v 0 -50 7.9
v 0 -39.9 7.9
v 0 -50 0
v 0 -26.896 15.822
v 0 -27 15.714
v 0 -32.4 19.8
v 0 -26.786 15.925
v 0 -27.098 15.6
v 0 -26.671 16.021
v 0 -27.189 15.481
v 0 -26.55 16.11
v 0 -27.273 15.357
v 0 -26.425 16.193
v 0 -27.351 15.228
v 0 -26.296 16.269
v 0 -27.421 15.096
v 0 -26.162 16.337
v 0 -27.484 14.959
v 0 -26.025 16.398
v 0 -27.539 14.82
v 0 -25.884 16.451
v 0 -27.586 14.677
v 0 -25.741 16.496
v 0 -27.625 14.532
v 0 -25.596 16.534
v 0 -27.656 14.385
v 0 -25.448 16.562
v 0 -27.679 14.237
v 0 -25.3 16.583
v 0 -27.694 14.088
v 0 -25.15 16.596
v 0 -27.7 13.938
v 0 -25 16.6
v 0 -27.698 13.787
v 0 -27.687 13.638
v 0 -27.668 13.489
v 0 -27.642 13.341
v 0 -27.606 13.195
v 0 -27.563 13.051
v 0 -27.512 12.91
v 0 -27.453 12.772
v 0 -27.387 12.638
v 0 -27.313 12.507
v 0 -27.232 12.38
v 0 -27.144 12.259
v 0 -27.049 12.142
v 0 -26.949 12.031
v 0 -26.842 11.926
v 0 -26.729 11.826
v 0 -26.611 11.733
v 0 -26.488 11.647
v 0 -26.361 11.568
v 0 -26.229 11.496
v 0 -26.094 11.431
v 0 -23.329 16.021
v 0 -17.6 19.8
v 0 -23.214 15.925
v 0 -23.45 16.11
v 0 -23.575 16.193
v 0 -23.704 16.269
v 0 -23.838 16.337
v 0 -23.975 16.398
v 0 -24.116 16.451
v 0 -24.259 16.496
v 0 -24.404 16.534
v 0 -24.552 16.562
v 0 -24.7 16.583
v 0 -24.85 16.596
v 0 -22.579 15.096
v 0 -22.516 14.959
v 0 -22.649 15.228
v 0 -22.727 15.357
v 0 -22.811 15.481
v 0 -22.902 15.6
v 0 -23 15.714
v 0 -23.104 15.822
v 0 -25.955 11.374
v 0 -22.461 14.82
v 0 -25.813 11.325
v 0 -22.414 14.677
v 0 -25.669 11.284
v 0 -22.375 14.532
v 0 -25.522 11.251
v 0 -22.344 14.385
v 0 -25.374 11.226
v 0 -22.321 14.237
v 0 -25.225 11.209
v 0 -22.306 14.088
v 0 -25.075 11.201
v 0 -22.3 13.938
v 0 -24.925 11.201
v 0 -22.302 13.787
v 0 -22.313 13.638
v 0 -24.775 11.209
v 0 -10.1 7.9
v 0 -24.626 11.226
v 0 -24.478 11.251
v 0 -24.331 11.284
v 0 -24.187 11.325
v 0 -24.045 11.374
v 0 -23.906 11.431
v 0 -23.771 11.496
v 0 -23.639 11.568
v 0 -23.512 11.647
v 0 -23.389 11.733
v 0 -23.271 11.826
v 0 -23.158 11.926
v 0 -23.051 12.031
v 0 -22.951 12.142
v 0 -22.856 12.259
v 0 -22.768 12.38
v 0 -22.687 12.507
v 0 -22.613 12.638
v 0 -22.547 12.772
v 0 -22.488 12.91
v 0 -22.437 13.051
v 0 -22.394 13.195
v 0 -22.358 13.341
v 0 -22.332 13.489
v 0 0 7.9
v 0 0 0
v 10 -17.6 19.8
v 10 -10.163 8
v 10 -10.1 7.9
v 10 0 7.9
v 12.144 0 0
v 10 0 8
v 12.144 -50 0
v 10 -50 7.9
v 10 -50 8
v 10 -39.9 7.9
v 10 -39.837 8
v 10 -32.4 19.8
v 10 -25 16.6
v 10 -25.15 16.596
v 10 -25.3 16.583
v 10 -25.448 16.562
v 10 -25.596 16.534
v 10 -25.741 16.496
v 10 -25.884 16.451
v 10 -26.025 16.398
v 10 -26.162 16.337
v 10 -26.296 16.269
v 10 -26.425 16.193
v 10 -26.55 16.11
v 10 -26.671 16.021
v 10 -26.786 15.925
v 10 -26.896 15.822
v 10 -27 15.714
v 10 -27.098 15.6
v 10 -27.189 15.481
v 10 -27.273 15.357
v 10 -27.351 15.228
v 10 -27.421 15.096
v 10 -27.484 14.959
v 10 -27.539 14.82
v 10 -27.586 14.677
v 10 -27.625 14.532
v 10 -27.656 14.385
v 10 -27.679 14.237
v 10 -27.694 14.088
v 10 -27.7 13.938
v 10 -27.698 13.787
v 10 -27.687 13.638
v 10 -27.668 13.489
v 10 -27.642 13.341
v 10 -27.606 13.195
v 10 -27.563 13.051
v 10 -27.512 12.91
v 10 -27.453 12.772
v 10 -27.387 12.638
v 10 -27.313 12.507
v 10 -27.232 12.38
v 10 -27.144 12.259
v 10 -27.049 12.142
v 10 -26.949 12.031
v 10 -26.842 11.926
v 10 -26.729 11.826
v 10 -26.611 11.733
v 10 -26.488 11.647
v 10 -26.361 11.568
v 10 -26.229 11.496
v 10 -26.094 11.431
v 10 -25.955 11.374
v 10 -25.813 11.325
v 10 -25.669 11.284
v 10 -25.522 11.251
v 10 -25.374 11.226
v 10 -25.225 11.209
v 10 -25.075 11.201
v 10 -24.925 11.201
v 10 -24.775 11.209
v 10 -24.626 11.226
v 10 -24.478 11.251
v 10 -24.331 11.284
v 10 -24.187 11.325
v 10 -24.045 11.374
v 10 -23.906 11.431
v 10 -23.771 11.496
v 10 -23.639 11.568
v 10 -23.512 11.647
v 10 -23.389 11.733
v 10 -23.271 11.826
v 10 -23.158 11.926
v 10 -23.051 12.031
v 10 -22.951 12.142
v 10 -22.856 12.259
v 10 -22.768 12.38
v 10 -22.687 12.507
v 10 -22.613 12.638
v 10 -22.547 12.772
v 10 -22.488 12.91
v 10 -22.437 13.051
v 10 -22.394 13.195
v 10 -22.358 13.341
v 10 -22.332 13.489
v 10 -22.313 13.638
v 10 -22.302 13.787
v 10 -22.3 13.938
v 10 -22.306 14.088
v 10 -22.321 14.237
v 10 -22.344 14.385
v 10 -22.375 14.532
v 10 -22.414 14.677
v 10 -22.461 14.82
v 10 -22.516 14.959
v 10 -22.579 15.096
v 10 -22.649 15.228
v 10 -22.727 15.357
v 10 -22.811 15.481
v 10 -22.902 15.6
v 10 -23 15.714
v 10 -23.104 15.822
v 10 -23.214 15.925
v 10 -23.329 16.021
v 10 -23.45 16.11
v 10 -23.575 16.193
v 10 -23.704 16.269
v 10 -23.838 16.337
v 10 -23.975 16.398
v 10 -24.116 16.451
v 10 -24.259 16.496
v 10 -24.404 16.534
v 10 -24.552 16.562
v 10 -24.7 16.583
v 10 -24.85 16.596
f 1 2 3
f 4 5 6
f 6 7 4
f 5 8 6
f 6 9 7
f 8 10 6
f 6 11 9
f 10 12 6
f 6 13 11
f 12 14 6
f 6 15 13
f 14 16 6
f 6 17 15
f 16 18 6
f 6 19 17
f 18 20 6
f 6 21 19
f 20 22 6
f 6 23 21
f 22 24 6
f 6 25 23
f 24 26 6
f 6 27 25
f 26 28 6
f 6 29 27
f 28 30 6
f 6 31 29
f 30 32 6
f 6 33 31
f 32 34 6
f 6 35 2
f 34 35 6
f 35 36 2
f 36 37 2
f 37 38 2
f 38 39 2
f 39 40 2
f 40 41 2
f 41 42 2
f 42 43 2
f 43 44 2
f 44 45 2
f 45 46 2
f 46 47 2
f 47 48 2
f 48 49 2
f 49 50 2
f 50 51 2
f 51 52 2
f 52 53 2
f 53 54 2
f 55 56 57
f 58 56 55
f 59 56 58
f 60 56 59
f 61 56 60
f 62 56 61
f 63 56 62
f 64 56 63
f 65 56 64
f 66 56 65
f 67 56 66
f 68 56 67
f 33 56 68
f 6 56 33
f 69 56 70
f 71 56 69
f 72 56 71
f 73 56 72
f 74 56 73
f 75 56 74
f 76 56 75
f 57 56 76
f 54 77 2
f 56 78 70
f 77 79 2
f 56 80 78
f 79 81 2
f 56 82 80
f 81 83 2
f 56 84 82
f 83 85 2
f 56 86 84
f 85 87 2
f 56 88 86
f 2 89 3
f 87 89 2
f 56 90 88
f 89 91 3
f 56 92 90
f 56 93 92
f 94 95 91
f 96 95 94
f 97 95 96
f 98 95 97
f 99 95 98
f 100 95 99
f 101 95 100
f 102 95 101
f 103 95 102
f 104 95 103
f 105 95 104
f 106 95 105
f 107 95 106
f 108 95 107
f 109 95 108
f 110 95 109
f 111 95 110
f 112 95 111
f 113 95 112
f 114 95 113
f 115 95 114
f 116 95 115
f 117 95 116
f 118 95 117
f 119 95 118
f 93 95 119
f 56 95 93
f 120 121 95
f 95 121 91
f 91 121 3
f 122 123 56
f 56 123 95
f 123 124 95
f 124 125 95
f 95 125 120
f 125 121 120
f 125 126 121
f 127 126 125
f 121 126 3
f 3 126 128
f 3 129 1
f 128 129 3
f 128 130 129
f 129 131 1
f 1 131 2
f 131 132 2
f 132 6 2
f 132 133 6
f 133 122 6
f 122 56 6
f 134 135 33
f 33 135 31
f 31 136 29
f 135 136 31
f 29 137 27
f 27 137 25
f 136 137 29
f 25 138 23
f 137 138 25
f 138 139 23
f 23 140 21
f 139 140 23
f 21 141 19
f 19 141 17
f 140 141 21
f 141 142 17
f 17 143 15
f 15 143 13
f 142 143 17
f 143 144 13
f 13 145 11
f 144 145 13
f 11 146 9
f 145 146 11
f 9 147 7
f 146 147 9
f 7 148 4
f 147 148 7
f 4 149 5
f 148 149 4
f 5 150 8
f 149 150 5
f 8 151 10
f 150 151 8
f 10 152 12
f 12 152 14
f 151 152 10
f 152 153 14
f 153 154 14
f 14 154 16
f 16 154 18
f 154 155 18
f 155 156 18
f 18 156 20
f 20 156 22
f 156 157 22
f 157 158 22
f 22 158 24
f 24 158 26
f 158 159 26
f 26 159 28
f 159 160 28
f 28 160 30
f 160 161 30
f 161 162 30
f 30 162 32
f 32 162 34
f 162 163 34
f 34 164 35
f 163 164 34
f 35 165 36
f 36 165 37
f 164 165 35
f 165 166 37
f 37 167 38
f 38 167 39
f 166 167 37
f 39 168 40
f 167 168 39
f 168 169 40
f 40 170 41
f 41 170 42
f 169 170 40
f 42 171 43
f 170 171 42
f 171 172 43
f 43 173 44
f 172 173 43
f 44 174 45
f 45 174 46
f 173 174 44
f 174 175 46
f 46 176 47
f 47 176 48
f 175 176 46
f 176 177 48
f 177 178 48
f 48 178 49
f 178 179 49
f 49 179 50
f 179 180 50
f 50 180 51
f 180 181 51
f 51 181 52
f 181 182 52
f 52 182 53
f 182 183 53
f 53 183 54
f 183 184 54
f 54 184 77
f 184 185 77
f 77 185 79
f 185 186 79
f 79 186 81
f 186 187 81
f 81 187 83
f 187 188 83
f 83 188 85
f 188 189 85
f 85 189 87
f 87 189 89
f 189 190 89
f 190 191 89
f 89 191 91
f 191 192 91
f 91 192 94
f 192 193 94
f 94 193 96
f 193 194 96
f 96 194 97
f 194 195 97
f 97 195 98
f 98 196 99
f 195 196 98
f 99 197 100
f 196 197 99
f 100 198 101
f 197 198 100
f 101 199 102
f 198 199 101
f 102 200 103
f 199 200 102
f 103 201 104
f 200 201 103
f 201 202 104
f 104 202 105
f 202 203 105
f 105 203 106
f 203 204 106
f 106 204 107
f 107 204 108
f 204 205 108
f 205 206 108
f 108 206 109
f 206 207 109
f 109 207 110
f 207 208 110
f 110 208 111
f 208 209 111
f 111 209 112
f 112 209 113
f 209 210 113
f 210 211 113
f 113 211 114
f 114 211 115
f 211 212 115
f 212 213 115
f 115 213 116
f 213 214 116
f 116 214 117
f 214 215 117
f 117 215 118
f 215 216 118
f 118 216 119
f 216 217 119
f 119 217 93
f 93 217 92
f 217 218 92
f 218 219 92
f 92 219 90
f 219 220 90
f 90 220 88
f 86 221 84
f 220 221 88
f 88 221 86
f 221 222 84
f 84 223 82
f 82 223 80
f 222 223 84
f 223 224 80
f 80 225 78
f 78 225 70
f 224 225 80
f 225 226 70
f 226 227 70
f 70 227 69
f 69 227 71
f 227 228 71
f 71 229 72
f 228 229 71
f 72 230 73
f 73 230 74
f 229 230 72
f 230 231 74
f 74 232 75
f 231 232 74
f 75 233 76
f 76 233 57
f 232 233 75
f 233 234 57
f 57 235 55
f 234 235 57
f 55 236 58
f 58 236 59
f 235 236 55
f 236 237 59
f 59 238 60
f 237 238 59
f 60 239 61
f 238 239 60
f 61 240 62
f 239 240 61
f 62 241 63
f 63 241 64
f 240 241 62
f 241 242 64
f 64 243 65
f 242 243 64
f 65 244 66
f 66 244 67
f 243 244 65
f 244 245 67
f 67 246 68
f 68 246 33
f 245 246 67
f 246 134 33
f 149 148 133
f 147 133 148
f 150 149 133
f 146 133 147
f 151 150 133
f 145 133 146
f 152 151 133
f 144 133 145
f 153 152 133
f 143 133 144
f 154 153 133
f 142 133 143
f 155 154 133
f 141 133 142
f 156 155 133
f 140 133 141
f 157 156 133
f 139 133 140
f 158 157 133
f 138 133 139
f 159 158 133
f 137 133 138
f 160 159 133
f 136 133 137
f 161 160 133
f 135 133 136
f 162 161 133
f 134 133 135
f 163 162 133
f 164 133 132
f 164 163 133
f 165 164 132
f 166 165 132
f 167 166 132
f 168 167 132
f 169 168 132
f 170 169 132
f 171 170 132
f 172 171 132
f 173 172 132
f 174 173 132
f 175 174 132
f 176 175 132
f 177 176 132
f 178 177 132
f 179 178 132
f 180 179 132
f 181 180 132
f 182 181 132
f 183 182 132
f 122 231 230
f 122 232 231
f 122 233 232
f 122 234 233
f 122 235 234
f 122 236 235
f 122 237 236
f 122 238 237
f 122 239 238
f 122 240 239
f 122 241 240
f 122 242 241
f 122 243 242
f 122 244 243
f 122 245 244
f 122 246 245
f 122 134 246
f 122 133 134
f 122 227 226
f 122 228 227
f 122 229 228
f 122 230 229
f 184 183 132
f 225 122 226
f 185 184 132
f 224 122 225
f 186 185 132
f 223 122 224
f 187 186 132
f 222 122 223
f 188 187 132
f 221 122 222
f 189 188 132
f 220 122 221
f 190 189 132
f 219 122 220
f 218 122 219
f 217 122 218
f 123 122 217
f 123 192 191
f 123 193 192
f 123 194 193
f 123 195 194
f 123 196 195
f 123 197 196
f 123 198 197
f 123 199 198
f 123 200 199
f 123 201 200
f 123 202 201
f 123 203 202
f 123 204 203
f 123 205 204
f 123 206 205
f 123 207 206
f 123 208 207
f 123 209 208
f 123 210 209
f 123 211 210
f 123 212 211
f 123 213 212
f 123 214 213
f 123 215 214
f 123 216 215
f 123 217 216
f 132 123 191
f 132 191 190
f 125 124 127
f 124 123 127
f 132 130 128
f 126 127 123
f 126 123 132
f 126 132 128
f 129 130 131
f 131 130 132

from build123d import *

# Parameters (mm, degrees)
SKETCH_W        = 14
SKETCH_H        = 19.8
PAD_DEPTH       = 50
POCKET_DEPTH    = 50.001
SKETCH002_R     = 2.7
POCKET001_DEPTH = 10.001
POCKET002_DEPTH = 10


with BuildPart() as part:
    # Sketch → Pad (new body)
    with BuildSketch(Plane.XZ):
        with Locations((7, 9.9)):
            Rectangle(SKETCH_W, SKETCH_H)
    extrude(amount=PAD_DEPTH)

    # Sketch001 (on Face5 of Pad) → Pocket (cut, through all)
    with BuildSketch(Plane(origin=(0, 0, 0), x_dir=(1, 0, 0), z_dir=(0, 1, 0))):
        Polygon((10, -19.8), (10, -8), (12.143594, 0), (14, 0), (14, -19.8), align=None)
    extrude(amount=-POCKET_DEPTH, mode=Mode.SUBTRACT)

    # Sketch002 (on Face6 of Pocket) → Pocket001 (cut, through all)
    with BuildSketch(Plane(origin=(10, 0, 0), x_dir=(0, 0, 1), z_dir=(1, 0, 0))):
        with Locations((13.9, 25)):
            Circle(SKETCH002_R)
    extrude(amount=-POCKET001_DEPTH, mode=Mode.SUBTRACT)

    # Sketch003 (on Face7 of Pocket001) → Pocket002 (cut)
    with BuildSketch(Plane(origin=(10, 0, 0), x_dir=(0, 0, 1), z_dir=(1, 0, 0))):
        Polygon((7.9, 39.9), (19.8, 32.4), (19.8, 50), (7.9, 50), align=None)
        Polygon((7.9, 0), (19.8, 0), (19.8, 17.6), (7.9, 10.1), align=None)
    extrude(amount=-POCKET002_DEPTH, mode=Mode.SUBTRACT)


solid = part.part
